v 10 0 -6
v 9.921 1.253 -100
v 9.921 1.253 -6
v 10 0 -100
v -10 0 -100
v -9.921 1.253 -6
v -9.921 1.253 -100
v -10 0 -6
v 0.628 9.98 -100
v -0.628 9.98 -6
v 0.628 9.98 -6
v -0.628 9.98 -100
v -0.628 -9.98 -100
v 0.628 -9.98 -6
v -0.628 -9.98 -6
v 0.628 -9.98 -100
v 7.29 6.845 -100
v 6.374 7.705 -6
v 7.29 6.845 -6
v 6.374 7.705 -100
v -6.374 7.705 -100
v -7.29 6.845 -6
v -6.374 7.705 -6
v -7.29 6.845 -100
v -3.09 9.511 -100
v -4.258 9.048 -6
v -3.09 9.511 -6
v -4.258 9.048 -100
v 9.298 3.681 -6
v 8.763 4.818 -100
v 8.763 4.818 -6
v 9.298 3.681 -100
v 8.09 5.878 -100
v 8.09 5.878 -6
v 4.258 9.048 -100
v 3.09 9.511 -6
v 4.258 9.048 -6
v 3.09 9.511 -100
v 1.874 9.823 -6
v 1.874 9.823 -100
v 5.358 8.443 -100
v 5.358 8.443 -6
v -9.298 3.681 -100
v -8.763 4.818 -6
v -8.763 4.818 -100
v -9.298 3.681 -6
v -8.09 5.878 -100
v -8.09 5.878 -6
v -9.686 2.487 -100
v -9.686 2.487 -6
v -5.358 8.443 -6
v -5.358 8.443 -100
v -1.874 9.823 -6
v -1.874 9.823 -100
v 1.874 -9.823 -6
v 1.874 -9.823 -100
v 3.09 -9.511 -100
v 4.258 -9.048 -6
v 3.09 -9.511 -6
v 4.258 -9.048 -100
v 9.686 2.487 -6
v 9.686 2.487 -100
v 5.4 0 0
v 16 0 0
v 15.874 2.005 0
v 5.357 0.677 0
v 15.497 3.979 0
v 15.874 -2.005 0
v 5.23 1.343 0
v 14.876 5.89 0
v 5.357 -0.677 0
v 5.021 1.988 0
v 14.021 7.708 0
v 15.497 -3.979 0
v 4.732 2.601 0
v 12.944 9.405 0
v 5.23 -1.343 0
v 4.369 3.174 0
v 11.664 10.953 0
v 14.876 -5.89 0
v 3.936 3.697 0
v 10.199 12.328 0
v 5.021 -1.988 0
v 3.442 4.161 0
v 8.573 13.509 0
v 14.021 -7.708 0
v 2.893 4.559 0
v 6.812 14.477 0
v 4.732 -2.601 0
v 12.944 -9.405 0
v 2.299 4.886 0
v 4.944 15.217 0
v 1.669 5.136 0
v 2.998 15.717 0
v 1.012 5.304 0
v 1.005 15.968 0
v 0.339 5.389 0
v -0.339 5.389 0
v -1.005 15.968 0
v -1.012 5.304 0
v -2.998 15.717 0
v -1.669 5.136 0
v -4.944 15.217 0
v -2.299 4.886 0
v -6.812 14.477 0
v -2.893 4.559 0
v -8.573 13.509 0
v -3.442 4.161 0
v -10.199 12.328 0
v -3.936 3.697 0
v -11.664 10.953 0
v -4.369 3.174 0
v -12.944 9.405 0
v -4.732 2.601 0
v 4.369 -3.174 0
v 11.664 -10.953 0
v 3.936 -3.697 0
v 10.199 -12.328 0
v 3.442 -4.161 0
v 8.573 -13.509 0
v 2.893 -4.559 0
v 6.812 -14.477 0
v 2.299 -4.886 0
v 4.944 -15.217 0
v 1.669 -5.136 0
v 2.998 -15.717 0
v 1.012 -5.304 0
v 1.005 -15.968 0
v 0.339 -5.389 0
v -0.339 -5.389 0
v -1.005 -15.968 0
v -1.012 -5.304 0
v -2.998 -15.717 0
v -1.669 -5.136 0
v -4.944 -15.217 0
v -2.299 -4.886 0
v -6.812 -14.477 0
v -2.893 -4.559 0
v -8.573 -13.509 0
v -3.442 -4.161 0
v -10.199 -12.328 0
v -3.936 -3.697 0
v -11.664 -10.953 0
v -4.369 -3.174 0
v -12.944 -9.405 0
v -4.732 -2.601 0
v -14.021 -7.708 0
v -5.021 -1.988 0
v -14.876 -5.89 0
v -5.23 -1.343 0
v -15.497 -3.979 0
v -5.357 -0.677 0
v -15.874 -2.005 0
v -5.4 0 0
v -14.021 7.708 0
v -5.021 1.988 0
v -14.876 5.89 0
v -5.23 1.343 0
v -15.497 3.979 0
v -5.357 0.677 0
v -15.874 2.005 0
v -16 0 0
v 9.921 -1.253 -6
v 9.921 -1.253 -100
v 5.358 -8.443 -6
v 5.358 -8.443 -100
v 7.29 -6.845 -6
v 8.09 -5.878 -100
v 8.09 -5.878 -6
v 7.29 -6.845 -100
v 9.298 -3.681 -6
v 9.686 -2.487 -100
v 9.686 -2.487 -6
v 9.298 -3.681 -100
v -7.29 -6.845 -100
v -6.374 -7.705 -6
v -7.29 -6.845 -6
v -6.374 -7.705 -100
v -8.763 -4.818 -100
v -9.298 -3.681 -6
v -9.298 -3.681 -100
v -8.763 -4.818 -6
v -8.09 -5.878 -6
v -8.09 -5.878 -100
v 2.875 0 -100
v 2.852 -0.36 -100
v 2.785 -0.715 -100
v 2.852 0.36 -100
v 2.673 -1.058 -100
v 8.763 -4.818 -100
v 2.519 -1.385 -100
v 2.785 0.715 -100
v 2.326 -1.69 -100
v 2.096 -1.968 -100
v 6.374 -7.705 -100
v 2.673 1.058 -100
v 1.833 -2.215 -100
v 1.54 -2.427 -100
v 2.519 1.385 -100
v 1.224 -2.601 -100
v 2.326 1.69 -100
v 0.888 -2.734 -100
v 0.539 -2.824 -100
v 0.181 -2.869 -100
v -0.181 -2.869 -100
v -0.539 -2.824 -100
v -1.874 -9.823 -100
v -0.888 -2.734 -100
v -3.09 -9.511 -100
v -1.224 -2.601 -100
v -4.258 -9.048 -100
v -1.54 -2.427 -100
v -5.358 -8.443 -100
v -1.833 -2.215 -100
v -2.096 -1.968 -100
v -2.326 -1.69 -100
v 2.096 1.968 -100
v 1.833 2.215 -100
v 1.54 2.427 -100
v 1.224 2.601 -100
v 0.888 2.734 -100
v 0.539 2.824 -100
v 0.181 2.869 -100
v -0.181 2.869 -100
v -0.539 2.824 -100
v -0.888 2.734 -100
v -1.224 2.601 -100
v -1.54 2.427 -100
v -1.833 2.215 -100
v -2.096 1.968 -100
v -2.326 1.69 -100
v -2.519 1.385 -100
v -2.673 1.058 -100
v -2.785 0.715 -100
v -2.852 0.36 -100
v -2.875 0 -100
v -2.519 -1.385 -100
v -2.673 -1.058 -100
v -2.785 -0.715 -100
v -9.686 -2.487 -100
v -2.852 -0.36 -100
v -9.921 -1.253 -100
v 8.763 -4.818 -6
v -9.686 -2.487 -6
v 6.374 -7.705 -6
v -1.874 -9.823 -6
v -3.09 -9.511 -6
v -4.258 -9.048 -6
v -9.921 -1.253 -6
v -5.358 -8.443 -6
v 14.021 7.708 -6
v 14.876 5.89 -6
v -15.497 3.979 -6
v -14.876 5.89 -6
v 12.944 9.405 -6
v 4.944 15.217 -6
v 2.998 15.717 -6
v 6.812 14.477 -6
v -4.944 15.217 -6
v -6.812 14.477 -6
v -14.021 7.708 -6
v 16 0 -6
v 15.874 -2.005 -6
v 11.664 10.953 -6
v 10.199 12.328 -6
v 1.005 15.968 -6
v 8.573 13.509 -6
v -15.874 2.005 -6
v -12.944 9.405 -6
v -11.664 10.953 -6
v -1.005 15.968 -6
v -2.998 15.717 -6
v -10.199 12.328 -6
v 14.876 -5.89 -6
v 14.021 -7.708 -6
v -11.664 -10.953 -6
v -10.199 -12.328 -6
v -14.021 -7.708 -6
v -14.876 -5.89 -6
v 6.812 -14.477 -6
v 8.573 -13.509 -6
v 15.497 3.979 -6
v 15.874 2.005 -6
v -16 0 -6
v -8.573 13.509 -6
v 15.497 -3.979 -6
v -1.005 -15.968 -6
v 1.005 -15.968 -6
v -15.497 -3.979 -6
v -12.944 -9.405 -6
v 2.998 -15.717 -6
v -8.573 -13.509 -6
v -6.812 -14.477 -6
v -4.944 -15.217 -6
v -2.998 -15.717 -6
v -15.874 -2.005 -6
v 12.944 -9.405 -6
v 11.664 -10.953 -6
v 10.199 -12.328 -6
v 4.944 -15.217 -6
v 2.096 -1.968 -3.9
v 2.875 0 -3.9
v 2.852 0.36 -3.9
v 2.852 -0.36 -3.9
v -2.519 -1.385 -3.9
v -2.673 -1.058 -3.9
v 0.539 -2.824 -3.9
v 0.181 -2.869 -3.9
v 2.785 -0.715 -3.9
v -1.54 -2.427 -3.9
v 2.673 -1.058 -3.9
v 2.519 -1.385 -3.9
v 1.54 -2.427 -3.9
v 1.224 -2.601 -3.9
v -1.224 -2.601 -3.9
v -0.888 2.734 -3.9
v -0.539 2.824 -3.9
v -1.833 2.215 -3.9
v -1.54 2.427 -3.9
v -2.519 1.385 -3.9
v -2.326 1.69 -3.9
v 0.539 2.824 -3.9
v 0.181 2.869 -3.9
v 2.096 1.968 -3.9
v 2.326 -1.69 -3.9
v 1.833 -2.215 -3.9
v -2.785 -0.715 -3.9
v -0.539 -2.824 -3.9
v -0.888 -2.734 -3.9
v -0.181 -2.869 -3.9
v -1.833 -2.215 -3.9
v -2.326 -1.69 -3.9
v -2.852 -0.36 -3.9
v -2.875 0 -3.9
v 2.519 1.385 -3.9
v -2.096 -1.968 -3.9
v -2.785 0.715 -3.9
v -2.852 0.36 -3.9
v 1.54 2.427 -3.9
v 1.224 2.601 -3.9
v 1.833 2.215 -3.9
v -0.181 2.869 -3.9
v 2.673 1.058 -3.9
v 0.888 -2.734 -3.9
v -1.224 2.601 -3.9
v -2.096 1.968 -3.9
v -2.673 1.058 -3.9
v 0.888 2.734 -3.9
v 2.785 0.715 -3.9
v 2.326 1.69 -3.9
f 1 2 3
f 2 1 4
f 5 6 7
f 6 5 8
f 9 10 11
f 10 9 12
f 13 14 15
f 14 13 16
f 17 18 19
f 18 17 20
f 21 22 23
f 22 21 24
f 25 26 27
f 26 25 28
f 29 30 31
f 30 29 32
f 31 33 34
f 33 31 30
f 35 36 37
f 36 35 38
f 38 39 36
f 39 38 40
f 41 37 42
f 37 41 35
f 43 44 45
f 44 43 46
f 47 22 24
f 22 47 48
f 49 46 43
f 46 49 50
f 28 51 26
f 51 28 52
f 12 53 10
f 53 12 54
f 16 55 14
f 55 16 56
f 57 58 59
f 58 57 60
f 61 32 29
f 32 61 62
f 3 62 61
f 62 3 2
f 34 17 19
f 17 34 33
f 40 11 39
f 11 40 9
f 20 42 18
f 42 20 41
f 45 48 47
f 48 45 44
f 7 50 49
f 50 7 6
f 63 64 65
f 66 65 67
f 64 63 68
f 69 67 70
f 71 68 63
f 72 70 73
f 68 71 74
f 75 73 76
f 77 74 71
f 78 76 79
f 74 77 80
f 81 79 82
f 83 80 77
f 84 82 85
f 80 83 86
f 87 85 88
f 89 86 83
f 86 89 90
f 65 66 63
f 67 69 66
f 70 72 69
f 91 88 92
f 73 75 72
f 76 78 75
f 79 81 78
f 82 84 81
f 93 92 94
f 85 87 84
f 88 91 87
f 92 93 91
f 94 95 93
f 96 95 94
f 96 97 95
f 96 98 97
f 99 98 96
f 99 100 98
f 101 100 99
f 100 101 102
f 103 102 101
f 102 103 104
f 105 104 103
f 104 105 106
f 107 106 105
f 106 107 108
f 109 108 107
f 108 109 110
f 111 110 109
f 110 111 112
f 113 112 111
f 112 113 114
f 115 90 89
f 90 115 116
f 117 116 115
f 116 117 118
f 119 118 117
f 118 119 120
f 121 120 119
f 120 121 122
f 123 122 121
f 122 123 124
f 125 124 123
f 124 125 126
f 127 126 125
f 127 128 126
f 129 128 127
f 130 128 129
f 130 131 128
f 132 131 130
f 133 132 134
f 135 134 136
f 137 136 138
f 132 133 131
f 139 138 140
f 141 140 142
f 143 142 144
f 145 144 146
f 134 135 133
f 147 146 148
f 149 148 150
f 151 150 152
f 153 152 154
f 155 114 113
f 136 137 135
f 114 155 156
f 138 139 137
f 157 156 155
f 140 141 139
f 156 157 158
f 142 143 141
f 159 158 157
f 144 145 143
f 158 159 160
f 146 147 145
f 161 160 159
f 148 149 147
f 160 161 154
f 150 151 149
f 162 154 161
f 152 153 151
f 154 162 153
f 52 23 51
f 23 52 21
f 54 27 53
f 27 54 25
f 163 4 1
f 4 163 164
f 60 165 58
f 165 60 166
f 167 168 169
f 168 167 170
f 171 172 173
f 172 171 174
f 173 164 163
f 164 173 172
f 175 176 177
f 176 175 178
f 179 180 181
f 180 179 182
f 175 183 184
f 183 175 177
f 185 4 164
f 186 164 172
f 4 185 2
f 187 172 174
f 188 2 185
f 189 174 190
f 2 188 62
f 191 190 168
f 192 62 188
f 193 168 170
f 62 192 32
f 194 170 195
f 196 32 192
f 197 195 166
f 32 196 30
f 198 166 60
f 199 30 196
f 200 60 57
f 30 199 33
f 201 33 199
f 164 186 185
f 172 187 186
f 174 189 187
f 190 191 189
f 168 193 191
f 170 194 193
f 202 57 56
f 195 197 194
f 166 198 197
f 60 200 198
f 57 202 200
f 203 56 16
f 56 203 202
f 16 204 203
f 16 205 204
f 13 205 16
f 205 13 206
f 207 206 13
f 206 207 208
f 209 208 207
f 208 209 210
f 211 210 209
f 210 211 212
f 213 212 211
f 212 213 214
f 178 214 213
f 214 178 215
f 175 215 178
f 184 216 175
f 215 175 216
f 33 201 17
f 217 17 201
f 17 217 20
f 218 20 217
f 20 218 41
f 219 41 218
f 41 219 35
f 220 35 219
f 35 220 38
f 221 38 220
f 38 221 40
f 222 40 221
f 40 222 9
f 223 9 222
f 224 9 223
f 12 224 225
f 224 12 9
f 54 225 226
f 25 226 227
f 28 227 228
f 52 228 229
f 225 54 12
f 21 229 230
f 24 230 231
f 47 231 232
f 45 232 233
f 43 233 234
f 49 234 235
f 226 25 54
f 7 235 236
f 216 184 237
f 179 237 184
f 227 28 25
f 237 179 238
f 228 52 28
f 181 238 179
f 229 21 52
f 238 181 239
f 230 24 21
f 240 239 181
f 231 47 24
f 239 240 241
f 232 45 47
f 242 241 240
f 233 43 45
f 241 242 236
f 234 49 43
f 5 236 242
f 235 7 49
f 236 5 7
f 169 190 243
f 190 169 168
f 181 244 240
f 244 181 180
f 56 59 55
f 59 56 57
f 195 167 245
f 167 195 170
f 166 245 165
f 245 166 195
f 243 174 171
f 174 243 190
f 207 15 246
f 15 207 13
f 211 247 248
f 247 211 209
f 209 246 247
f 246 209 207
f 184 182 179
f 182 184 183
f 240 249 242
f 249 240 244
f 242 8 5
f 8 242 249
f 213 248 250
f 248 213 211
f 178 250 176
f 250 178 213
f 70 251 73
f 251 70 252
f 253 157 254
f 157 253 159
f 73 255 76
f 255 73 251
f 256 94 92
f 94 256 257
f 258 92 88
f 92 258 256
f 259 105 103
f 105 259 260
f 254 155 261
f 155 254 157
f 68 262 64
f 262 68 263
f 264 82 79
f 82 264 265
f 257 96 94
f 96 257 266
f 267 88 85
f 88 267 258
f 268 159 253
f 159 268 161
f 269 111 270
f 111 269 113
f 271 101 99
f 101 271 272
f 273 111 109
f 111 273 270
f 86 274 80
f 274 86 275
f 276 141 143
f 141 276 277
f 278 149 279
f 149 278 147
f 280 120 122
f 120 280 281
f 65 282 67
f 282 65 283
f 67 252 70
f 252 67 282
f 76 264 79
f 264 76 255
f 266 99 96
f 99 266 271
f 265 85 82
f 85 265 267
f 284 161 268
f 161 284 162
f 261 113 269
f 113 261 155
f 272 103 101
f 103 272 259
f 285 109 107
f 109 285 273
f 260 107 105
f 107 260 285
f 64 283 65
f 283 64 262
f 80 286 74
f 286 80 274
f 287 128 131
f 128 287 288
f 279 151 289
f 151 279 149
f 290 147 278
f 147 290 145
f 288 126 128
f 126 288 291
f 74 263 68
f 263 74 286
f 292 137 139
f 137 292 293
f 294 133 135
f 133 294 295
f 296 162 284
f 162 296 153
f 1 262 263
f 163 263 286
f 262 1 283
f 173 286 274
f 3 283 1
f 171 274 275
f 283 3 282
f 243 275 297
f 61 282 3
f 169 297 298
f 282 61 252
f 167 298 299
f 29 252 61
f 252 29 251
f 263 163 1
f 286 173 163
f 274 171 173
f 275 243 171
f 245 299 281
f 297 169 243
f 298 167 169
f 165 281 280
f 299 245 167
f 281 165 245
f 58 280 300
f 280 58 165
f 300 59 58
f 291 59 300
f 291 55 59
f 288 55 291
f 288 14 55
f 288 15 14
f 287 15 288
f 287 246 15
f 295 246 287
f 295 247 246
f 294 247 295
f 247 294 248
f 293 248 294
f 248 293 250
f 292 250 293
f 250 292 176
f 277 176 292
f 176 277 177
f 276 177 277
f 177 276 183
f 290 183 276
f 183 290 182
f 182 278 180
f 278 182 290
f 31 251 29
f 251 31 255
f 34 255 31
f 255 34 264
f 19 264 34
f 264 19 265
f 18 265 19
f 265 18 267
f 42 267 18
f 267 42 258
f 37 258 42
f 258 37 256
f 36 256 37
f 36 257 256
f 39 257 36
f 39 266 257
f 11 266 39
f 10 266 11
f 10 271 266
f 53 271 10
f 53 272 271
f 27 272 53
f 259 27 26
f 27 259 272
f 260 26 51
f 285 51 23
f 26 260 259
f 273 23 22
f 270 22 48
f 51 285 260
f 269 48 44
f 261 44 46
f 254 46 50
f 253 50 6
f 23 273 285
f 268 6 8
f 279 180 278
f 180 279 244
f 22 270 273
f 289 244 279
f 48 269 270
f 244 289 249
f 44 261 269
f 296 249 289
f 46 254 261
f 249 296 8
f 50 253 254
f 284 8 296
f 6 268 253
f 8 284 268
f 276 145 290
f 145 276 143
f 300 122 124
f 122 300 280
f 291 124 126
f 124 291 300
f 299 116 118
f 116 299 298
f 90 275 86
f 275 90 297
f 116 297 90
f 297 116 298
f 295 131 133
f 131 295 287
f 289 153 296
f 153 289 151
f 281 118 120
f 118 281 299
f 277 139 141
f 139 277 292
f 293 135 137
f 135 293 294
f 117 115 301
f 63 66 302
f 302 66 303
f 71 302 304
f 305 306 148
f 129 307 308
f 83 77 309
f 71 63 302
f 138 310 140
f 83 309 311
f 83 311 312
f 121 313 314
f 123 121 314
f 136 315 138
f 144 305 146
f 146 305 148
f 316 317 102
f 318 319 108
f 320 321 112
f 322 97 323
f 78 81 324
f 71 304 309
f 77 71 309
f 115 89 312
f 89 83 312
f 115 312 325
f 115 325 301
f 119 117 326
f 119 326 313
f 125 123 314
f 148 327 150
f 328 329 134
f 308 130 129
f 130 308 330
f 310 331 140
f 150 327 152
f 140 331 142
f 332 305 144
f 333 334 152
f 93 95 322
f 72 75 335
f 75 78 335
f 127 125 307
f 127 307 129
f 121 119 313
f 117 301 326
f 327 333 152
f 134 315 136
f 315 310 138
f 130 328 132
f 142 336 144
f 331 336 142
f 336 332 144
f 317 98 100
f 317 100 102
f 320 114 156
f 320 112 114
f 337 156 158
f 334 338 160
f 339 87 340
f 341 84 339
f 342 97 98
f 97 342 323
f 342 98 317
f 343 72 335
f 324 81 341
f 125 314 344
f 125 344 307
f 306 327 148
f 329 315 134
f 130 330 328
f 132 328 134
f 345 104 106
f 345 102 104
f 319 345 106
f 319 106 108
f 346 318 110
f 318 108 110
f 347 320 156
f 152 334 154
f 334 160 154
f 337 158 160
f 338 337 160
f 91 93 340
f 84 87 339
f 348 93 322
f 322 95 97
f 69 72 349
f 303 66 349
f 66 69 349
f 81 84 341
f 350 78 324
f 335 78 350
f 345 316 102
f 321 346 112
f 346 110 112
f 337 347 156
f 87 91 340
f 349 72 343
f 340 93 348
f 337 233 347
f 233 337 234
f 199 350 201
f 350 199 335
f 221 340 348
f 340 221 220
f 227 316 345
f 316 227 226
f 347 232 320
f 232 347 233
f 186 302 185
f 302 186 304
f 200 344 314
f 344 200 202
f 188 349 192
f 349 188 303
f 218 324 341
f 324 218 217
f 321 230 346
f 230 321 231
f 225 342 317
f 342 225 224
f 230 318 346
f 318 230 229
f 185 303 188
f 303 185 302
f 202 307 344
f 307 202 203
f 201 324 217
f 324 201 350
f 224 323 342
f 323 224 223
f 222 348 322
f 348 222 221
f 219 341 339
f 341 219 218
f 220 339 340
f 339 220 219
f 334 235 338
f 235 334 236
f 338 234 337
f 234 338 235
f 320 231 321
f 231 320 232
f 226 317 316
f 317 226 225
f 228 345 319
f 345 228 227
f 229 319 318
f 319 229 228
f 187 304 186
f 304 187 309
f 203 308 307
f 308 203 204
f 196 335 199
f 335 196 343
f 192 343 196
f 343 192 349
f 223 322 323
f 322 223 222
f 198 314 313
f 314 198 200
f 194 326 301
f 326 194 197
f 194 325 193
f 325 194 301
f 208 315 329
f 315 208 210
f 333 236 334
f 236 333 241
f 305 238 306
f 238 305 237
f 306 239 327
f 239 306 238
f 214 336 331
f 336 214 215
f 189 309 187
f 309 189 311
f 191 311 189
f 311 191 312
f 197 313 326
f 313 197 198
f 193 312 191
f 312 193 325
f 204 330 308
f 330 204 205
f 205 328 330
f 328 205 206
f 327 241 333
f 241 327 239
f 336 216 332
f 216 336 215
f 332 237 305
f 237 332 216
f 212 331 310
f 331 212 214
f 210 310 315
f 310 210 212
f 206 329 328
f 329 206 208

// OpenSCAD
$fn = 50;


difference() {
	union() {
		translate(v = [0, 0, -100.0000000000]) {
			cylinder(h = 100, r = 10.0000000000);
		}
		translate(v = [0, 0, -6.0000000000]) {
			cylinder(h = 6, r = 16.0000000000);
		}
	}
	union() {
		translate(v = [0, 0, 0]) {
			rotate(a = [0, 0, 0]) {
				difference() {
					union() {
						#translate(v = [0, 0, -100.0000000000]) {
							cylinder(h = 100, r = 2.6000000000);
						}
						#translate(v = [0, 0, -3.9000000000]) {
							cylinder(h = 3.9000000000, r1 = 2.8750000000, r2 = 5.4000000000);
						}
						#translate(v = [0, 0, -100.0000000000]) {
							cylinder(h = 100, r = 2.8750000000);
						}
						#translate(v = [0, 0, -100.0000000000]) {
							cylinder(h = 100, r = 2.6000000000);
						}
					}
					union();
				}
			}
		}
	}
}
